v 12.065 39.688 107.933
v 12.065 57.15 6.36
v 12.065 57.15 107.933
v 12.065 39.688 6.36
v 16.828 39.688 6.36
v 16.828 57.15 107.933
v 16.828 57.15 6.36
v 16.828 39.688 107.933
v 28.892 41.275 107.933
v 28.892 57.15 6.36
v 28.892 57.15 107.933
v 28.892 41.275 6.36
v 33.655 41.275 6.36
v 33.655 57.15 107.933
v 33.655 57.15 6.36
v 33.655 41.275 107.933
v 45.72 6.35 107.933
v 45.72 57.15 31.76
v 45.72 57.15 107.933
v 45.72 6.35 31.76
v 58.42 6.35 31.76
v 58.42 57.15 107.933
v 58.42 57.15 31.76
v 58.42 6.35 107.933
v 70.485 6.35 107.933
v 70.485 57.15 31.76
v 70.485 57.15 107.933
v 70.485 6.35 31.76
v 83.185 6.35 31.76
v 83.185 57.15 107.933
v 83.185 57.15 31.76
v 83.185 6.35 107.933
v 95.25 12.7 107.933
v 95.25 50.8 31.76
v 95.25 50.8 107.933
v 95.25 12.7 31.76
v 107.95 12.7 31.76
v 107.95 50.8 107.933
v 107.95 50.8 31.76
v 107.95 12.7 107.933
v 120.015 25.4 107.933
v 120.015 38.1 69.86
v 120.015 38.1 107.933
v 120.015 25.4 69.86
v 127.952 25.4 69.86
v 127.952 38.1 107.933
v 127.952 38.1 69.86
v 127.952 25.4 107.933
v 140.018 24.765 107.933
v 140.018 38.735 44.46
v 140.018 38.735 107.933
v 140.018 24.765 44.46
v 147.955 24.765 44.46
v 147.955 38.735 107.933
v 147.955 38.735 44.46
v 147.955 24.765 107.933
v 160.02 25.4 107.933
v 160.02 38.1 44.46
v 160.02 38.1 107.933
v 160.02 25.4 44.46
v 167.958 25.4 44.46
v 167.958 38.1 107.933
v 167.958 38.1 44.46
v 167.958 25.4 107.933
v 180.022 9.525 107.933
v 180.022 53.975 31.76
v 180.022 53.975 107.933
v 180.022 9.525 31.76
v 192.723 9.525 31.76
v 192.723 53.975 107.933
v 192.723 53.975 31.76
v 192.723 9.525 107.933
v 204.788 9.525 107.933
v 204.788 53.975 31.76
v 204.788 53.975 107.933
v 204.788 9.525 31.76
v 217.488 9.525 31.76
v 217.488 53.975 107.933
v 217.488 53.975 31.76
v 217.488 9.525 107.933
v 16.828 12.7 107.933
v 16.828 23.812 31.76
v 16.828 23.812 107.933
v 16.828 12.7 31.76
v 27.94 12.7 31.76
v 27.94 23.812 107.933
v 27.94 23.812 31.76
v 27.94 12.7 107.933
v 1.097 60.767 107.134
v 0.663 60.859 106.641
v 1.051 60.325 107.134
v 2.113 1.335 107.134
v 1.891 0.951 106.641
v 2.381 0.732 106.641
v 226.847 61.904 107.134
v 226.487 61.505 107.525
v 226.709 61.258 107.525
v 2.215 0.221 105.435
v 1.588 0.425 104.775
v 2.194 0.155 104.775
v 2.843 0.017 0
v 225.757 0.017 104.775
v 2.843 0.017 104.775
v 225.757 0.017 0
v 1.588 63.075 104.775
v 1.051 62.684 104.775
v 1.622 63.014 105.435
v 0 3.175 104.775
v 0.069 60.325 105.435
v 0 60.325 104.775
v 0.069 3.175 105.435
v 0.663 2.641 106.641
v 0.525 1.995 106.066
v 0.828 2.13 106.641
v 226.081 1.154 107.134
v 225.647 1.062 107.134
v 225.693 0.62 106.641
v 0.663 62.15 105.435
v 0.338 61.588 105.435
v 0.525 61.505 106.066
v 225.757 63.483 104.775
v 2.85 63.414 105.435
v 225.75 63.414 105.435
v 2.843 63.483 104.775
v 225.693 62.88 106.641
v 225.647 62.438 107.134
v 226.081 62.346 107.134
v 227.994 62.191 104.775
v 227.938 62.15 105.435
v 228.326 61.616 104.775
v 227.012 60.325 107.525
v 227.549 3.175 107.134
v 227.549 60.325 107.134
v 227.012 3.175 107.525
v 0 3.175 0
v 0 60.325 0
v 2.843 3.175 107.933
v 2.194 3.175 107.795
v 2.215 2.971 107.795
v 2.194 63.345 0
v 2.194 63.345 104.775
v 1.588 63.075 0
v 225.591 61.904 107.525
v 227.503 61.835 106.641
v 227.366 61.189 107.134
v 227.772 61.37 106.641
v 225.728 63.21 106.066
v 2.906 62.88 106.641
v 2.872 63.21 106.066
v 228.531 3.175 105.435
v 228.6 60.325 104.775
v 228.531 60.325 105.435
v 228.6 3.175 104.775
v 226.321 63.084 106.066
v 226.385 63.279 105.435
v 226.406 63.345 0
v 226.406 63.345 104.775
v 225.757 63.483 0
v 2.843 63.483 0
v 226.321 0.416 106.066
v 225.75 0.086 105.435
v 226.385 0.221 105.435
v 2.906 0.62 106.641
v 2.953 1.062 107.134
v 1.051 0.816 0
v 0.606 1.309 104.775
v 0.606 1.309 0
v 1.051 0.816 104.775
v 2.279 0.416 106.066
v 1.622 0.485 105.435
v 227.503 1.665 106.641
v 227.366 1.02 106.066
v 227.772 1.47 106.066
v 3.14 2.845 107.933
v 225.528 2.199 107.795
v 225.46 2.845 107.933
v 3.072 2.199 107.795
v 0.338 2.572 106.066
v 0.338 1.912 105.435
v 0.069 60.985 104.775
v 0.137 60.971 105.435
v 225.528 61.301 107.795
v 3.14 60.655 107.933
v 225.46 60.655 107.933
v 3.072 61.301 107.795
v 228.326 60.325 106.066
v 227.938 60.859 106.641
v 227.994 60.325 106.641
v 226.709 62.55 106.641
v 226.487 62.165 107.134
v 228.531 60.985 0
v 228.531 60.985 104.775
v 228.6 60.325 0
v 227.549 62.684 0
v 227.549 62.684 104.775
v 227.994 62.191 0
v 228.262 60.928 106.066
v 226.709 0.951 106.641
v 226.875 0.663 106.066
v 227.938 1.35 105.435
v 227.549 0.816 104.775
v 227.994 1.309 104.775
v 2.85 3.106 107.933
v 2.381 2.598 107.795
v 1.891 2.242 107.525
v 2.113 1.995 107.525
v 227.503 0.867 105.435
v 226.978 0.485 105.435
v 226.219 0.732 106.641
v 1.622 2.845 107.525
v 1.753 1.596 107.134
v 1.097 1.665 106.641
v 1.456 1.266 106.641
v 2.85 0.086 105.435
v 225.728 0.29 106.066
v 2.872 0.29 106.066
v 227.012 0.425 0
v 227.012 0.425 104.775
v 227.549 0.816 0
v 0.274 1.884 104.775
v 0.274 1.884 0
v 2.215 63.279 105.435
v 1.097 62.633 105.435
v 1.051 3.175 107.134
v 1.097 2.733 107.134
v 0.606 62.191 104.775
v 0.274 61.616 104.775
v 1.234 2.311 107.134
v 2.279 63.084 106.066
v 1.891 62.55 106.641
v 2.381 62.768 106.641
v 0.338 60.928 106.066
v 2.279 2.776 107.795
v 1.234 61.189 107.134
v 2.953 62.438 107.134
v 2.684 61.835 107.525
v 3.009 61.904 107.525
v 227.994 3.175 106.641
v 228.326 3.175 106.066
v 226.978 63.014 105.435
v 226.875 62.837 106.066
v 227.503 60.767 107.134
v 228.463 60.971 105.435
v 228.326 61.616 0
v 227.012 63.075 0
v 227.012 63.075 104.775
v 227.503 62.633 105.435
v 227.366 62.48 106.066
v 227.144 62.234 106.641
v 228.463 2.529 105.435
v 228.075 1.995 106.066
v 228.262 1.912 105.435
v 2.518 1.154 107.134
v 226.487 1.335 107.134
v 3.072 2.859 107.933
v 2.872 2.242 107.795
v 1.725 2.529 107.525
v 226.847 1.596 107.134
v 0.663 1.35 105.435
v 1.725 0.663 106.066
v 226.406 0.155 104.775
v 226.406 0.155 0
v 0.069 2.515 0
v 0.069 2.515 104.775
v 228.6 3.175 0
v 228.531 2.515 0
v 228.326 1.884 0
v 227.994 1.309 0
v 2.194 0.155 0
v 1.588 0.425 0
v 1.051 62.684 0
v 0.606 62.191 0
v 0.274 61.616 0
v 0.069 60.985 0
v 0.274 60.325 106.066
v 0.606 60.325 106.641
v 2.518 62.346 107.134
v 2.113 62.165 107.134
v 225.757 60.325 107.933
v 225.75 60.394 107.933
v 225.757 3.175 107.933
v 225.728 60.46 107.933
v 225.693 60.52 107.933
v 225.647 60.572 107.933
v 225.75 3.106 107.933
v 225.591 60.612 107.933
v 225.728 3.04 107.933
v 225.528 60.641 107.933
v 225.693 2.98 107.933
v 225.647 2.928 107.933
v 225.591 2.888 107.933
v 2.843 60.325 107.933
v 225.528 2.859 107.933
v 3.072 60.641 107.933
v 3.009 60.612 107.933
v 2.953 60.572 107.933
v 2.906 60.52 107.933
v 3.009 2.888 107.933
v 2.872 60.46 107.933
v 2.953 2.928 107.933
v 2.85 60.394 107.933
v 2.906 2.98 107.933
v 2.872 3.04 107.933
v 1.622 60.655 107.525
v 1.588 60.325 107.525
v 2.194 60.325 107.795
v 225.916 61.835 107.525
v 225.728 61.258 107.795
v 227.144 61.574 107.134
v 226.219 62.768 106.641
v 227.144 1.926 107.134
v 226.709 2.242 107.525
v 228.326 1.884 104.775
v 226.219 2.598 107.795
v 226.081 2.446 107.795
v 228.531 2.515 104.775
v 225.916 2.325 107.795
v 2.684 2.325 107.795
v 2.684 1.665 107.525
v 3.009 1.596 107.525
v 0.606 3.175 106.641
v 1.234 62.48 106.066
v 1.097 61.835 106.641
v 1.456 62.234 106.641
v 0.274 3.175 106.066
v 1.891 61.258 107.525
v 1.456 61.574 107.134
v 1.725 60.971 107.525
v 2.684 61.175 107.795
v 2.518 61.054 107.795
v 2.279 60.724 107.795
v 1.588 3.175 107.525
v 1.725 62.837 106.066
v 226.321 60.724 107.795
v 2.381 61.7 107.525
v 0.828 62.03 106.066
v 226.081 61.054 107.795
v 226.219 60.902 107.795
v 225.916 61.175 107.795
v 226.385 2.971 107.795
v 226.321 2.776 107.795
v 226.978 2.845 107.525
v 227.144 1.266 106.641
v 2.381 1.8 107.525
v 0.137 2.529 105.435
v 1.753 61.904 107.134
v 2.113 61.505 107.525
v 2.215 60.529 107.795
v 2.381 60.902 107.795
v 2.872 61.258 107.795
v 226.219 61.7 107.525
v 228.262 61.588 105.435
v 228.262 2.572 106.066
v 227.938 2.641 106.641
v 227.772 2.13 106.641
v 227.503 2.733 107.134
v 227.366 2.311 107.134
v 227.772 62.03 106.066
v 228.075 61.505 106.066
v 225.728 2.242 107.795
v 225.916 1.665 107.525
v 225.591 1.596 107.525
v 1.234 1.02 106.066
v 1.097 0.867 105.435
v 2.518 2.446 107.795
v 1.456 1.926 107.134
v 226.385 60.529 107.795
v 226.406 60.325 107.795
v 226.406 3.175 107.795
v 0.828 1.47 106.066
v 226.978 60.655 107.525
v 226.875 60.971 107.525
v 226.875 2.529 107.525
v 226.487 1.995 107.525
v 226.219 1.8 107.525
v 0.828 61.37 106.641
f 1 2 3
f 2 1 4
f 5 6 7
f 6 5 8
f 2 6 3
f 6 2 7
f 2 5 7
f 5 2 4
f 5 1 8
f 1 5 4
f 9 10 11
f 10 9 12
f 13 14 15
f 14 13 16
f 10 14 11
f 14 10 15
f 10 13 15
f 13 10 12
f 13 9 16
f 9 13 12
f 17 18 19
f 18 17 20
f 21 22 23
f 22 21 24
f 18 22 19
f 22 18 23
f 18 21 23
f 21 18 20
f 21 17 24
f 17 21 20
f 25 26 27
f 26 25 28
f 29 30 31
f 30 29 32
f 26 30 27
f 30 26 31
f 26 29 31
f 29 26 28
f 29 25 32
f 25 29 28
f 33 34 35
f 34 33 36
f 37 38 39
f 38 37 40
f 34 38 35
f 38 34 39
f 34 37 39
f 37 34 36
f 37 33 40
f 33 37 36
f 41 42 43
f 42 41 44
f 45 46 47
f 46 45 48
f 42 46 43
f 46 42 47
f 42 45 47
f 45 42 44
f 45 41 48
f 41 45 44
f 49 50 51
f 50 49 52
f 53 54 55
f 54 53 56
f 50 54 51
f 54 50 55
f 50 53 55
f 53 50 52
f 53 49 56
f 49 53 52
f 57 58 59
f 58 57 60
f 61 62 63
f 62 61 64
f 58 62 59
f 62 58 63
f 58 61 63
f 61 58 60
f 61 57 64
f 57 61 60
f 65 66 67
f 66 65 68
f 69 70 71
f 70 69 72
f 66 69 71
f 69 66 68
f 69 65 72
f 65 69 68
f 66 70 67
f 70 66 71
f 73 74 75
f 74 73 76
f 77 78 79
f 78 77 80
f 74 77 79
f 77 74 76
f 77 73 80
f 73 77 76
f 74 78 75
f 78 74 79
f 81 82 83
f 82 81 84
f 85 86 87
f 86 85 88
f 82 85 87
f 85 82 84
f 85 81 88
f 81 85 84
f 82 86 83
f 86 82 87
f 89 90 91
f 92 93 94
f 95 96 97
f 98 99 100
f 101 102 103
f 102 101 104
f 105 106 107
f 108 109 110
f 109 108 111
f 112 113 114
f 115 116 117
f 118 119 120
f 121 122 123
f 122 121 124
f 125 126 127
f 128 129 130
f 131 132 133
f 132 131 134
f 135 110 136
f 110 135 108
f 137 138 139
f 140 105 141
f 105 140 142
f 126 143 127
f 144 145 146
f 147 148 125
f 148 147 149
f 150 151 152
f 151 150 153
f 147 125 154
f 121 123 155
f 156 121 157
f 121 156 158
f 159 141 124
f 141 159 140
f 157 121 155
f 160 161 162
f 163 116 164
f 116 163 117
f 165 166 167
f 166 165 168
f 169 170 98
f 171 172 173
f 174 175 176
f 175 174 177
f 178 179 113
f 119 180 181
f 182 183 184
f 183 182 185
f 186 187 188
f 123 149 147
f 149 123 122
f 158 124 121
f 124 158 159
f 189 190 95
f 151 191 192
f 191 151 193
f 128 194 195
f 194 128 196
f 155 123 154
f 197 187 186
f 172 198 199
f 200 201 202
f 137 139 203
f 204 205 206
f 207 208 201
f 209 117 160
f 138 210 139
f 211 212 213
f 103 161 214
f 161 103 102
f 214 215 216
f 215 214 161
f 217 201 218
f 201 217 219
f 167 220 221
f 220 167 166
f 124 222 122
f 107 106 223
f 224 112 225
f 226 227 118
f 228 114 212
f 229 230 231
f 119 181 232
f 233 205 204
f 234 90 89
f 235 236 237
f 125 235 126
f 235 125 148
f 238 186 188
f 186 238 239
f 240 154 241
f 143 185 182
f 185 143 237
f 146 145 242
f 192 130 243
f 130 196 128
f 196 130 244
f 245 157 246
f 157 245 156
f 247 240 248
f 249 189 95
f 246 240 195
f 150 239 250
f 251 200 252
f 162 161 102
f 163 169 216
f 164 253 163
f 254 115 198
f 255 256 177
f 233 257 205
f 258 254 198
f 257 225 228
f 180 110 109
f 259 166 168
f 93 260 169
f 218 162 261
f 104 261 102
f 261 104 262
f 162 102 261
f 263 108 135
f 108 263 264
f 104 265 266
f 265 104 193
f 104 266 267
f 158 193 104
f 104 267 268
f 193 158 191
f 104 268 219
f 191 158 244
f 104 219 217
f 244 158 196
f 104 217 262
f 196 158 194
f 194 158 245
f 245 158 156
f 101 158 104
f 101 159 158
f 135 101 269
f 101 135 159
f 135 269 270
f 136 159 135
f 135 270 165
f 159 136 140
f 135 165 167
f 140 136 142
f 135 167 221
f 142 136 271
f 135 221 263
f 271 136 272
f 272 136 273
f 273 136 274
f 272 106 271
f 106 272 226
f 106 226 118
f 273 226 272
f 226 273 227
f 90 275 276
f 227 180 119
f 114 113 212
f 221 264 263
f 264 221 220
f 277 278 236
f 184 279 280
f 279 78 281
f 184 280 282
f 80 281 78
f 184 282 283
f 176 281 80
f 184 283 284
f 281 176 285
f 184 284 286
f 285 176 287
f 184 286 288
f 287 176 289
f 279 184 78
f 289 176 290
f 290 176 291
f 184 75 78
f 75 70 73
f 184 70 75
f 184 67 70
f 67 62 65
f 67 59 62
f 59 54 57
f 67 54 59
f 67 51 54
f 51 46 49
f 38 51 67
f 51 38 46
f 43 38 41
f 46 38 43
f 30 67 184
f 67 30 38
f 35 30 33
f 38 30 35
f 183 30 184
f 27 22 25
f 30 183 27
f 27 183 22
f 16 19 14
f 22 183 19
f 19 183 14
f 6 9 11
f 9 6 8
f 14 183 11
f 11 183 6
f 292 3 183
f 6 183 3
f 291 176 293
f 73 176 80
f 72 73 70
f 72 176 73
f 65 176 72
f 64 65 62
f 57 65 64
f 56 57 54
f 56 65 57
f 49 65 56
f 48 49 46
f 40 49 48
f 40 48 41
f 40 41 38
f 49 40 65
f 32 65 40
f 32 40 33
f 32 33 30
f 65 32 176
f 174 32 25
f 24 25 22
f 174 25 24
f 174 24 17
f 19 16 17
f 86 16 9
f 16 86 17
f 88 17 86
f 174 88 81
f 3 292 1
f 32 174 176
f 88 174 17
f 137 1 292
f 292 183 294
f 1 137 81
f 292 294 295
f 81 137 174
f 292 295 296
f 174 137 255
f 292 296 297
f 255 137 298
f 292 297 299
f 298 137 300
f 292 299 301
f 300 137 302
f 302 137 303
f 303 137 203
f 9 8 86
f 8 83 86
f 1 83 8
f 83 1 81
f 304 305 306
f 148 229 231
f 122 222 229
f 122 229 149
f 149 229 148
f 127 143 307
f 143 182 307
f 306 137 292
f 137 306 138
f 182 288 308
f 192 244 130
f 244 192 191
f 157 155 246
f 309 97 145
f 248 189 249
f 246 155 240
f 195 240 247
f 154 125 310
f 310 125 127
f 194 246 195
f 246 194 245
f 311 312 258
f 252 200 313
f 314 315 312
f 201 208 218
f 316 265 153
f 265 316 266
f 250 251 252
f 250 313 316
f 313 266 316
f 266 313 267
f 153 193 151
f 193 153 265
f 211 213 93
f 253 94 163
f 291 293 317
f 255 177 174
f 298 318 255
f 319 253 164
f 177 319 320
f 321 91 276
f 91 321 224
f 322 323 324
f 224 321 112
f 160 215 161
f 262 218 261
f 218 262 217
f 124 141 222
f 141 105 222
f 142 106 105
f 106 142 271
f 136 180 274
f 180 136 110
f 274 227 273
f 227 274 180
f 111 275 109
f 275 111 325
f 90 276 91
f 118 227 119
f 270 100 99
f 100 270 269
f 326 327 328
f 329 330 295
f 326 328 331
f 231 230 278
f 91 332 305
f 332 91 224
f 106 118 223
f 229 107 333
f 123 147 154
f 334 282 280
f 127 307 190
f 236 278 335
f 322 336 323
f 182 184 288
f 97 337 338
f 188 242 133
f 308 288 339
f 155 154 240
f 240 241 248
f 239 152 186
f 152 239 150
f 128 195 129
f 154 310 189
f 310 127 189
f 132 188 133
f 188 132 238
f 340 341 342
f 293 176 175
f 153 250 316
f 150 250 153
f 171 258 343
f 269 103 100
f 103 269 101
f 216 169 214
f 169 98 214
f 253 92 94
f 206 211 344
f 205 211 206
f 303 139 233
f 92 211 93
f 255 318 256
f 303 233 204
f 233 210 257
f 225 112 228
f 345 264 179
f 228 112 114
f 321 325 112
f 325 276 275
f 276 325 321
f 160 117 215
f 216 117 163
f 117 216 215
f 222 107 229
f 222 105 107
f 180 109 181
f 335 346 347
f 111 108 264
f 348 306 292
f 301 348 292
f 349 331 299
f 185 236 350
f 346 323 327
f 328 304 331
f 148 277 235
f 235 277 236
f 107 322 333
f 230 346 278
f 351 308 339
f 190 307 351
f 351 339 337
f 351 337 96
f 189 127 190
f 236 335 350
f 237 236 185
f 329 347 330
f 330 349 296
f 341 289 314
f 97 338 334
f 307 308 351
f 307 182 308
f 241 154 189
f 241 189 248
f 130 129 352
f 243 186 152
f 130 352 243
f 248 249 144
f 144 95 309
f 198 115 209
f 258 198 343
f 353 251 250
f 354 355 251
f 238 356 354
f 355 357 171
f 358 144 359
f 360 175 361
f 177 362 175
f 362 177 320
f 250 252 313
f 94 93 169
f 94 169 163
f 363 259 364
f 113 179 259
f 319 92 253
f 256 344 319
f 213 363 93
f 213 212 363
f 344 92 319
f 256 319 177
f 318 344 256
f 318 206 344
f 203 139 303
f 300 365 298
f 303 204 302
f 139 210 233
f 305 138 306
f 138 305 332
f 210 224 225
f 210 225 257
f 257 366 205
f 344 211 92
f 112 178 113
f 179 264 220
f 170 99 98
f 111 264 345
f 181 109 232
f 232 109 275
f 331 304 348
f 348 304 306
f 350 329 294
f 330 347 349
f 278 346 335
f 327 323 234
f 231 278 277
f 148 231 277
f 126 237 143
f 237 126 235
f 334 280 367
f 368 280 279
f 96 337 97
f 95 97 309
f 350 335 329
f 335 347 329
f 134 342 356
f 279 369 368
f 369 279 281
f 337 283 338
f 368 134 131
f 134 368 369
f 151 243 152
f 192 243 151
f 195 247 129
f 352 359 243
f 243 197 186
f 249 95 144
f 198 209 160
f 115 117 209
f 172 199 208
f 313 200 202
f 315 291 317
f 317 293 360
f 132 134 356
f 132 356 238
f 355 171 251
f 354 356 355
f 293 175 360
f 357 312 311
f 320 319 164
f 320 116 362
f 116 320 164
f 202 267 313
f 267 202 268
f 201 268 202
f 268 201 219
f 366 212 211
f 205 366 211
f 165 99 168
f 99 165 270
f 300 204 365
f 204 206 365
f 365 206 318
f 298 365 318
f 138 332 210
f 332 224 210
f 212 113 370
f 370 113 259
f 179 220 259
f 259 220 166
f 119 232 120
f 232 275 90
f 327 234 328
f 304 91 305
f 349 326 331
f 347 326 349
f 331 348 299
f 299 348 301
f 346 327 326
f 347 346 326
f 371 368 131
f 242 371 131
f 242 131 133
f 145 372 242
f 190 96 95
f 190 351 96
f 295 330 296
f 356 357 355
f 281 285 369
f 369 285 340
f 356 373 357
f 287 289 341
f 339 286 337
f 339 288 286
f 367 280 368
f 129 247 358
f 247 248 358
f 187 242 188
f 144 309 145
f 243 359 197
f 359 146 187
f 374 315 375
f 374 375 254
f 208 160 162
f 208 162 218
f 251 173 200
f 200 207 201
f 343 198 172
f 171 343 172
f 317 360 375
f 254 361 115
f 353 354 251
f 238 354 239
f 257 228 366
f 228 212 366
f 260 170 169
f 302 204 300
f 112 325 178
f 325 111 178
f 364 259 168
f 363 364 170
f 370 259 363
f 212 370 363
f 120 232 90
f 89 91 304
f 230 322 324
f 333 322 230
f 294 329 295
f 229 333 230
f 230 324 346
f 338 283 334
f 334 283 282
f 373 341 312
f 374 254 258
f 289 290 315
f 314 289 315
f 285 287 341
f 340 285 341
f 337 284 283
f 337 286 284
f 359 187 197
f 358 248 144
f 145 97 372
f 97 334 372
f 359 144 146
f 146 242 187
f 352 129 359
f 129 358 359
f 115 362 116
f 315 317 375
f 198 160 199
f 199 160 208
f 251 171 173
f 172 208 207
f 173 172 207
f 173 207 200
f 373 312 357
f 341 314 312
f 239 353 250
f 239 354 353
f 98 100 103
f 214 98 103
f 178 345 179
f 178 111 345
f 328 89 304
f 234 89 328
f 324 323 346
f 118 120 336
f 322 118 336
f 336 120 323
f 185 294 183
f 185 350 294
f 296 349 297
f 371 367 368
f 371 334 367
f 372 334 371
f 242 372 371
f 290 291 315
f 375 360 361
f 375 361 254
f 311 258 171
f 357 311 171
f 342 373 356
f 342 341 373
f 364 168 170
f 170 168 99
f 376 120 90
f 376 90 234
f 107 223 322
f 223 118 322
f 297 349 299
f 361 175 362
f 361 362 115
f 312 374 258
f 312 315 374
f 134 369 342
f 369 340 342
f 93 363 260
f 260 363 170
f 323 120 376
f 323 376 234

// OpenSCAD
// file: rounded_corners.scad
// Higher definition curves
$fs = 0.01;

module roundedcube(size = [1, 1, 1], center = false, radius = 0.5, apply_to = "all") {
  // If single value, convert to [x, y, z] vector
  size = (size[0] == undef) ? [size, size, size] : size;

  translate_min = radius;
  translate_xmax = size[0] - radius;
  translate_ymax = size[1] - radius;
  translate_zmax = size[2] - radius;

  diameter = radius * 2;

  module build_point(type = "sphere", rotate = [0, 0, 0]) {
    if (type == "sphere") {
      sphere(r = radius);
    } else if (type == "cylinder") {
      rotate(a = rotate)
      cylinder(h = diameter, r = radius, center = true);
    }
  }

  obj_translate = (center == false) ?
    [0, 0, 0] : [
      -(size[0] / 2),
      -(size[1] / 2),
      -(size[2] / 2)
    ];

  translate(v = obj_translate) {
    hull() {
      for (translate_x = [translate_min, translate_xmax]) {
        x_at = (translate_x == translate_min) ? "min" : "max";
        for (translate_y = [translate_min, translate_ymax]) {
          y_at = (translate_y == translate_min) ? "min" : "max";
          for (translate_z = [translate_min, translate_zmax]) {
            z_at = (translate_z == translate_min) ? "min" : "max";

            translate(v = [translate_x, translate_y, translate_z])
            if (
              (apply_to == "all") ||
              (apply_to == "xmin" && x_at == "min") || (apply_to == "xmax" && x_at == "max") ||
              (apply_to == "ymin" && y_at == "min") || (apply_to == "ymax" && y_at == "max") ||
              (apply_to == "zmin" && z_at == "min") || (apply_to == "zmax" && z_at == "max")
            ) {
              build_point("sphere");
            } else {
              rotate = 
                (apply_to == "xmin" || apply_to == "xmax" || apply_to == "x") ? [0, 90, 0] : (
                (apply_to == "ymin" || apply_to == "ymax" || apply_to == "y") ? [90, 90, 0] :
                [0, 0, 0]
              );
              build_point("cylinder", rotate);
            }
          }
        }
      }
    }
  }
}
// main file
include <rounded_corners.scad>

function in2mm (v) = v * 25.4;
function sumv (v, i, s = 0) = (i == s ? v [i][0] : v [i][0] + sumv (v, i - 1, s));

bw      = in2mm (9.0);   // Width of box
bd      = in2mm (2.5);   // Depth of box
bh      = in2mm (4.25);  // Height of box
margin  = in2mm (0.25);  // Minimum distance from hole to edge of box

hole_caliper_1   = [in2mm ((1 / 16) * 3), in2mm ((1 / 16) * 11), in2mm (4.0)];
hole_caliper_2   = [in2mm ((1 / 16) * 3), in2mm ((1 / 16) * 10), in2mm (4.0)];
hole_exxcelta    = [in2mm ((1 / 16) * 8), in2mm (2.00), in2mm (3.0)];
hole_xcelite     = [in2mm ((1 / 16) * 8), in2mm (2.00), in2mm (3.0)];
hole_xuron       = [in2mm ((1 / 16) * 8), in2mm (1.50), in2mm (3.0)];
hole_sears_short = [in2mm ((1 / 16) * 5), in2mm (0.50), in2mm (1.5)];
hole_blue        = [in2mm ((1 / 16) * 5), in2mm (0.55), in2mm (2.5)];
hole_sears_long  = [in2mm ((1 / 16) * 5), in2mm (0.50), in2mm (2.5)];
hole_stripper_1  = [in2mm ((1 / 16) * 8), in2mm (1.75), in2mm (3.0)];
hole_stripper_2  = [in2mm ((1 / 16) * 8), in2mm (1.75), in2mm (3.0)];
hole_screwdriver = [in2mm ((1 / 16) * 7), in2mm ((1 / 16) * 7), in2mm (3.0)];

holes_table = [hole_caliper_1,  hole_caliper_2,  hole_exxcelta,
               hole_xcelite,    hole_xuron,      hole_sears_short,
               hole_blue,       hole_sears_long, hole_stripper_1,
               hole_stripper_2, hole_screwdriver
              ];

spacing = (bw - sumv (holes_table, len (holes_table) - 1)) / (len (holes_table) - 1);

loc_table = [[(spacing *  1) + in2mm ((1 / 16) *  0), (bd - margin) - holes_table [0][1], (bh - holes_table [ 0][2]) + 0.01], //  0
             [(spacing *  2) + in2mm ((1 / 16) *  3), (bd - margin) - holes_table [1][1], (bh - holes_table [ 1][2]) + 0.01], //  0 + 3
             [(spacing *  3) + in2mm ((1 / 16) *  6), (bd - holes_table [ 2][1]) / 2,     (bh - holes_table [ 2][2]) + 0.01], //  3 + 3
             [(spacing *  4) + in2mm ((1 / 16) * 14), (bd - holes_table [ 3][1]) / 2,     (bh - holes_table [ 3][2]) + 0.01], //  6 + 8
             [(spacing *  5) + in2mm ((1 / 16) * 22), (bd - holes_table [ 4][1]) / 2,     (bh - holes_table [ 4][2]) + 0.01], // 14 + 8
             [(spacing *  6) + in2mm ((1 / 16) * 30), (bd - holes_table [ 5][1]) / 2,     (bh - holes_table [ 5][2]) + 0.01], // 22 + 8
             [(spacing *  7) + in2mm ((1 / 16) * 35), (bd - holes_table [ 6][1]) / 2,     (bh - holes_table [ 6][2]) + 0.01], // 30 + 5
             [(spacing *  8) + in2mm ((1 / 16) * 40), (bd - holes_table [ 7][1]) / 2,     (bh - holes_table [ 7][2]) + 0.01], // 35 + 5
             [(spacing *  9) + in2mm ((1 / 16) * 45), (bd - holes_table [ 8][1]) / 2,     (bh - holes_table [ 8][2]) + 0.01], // 40 + 5
             [(spacing * 10) + in2mm ((1 / 16) * 53), (bd - holes_table [ 9][1]) / 2,     (bh - holes_table [ 9][2]) + 0.01], // 45 + 8
             [(spacing *  1) + in2mm ((1 / 16) * 3),  margin + in2mm (0.25),              (bh - holes_table [10][2]) + 0.01],
            ];

difference () {             
  roundedcube ([bw, bd, bh], radius = in2mm (0.125), apply_to="zmax");

  for (i = [0 : len (holes_table) - 1]) {
    translate (loc_table [i])
      cube (holes_table [i]);
  }
}
